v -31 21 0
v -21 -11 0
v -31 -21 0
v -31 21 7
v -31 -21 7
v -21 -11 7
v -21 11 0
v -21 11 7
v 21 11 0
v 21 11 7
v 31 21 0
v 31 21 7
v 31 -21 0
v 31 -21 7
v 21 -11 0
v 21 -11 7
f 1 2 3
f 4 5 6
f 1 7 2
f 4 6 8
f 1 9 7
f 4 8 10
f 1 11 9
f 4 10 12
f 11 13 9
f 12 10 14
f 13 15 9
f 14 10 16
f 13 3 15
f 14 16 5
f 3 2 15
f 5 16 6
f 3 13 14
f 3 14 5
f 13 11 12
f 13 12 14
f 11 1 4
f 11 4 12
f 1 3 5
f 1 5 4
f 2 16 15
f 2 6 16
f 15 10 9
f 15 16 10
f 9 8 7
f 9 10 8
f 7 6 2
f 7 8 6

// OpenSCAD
polyhedron(points=[[-31.0, 21.0, 0.0], [-31.0, -21.0, 0.0], [-21.0, -11.0, 0.0], [-31.0, 21.0, 7.0], [-31.0, -21.0, 7.0], [-21.0, -11.0, 7.0], [-21.0, 11.0, 0.0], [-21.0, 11.0, 7.0], [21.0, 11.0, 0.0], [21.0, 11.0, 7.0], [31.0, 21.0, 0.0], [31.0, 21.0, 7.0], [31.0, -21.0, 0.0], [31.0, -21.0, 7.0], [21.0, -11.0, 0.0], [21.0, -11.0, 7.0]], faces=[[0, 2, 1], [3, 4, 5], [0, 6, 2], [3, 5, 7], [0, 8, 6], [3, 7, 9], [0, 10, 8], [3, 9, 11], [10, 12, 8], [11, 9, 13], [12, 14, 8], [13, 9, 15], [12, 1, 14], [13, 15, 4], [1, 2, 14], [4, 15, 5], [1, 12, 13], [1, 13, 4], [12, 10, 11], [12, 11, 13], [10, 0, 3], [10, 3, 11], [0, 1, 4], [0, 4, 3], [2, 15, 14], [2, 5, 15], [14, 9, 8], [14, 15, 9], [8, 7, 6], [8, 9, 7], [6, 5, 2], [6, 7, 5]], convexity=20);
